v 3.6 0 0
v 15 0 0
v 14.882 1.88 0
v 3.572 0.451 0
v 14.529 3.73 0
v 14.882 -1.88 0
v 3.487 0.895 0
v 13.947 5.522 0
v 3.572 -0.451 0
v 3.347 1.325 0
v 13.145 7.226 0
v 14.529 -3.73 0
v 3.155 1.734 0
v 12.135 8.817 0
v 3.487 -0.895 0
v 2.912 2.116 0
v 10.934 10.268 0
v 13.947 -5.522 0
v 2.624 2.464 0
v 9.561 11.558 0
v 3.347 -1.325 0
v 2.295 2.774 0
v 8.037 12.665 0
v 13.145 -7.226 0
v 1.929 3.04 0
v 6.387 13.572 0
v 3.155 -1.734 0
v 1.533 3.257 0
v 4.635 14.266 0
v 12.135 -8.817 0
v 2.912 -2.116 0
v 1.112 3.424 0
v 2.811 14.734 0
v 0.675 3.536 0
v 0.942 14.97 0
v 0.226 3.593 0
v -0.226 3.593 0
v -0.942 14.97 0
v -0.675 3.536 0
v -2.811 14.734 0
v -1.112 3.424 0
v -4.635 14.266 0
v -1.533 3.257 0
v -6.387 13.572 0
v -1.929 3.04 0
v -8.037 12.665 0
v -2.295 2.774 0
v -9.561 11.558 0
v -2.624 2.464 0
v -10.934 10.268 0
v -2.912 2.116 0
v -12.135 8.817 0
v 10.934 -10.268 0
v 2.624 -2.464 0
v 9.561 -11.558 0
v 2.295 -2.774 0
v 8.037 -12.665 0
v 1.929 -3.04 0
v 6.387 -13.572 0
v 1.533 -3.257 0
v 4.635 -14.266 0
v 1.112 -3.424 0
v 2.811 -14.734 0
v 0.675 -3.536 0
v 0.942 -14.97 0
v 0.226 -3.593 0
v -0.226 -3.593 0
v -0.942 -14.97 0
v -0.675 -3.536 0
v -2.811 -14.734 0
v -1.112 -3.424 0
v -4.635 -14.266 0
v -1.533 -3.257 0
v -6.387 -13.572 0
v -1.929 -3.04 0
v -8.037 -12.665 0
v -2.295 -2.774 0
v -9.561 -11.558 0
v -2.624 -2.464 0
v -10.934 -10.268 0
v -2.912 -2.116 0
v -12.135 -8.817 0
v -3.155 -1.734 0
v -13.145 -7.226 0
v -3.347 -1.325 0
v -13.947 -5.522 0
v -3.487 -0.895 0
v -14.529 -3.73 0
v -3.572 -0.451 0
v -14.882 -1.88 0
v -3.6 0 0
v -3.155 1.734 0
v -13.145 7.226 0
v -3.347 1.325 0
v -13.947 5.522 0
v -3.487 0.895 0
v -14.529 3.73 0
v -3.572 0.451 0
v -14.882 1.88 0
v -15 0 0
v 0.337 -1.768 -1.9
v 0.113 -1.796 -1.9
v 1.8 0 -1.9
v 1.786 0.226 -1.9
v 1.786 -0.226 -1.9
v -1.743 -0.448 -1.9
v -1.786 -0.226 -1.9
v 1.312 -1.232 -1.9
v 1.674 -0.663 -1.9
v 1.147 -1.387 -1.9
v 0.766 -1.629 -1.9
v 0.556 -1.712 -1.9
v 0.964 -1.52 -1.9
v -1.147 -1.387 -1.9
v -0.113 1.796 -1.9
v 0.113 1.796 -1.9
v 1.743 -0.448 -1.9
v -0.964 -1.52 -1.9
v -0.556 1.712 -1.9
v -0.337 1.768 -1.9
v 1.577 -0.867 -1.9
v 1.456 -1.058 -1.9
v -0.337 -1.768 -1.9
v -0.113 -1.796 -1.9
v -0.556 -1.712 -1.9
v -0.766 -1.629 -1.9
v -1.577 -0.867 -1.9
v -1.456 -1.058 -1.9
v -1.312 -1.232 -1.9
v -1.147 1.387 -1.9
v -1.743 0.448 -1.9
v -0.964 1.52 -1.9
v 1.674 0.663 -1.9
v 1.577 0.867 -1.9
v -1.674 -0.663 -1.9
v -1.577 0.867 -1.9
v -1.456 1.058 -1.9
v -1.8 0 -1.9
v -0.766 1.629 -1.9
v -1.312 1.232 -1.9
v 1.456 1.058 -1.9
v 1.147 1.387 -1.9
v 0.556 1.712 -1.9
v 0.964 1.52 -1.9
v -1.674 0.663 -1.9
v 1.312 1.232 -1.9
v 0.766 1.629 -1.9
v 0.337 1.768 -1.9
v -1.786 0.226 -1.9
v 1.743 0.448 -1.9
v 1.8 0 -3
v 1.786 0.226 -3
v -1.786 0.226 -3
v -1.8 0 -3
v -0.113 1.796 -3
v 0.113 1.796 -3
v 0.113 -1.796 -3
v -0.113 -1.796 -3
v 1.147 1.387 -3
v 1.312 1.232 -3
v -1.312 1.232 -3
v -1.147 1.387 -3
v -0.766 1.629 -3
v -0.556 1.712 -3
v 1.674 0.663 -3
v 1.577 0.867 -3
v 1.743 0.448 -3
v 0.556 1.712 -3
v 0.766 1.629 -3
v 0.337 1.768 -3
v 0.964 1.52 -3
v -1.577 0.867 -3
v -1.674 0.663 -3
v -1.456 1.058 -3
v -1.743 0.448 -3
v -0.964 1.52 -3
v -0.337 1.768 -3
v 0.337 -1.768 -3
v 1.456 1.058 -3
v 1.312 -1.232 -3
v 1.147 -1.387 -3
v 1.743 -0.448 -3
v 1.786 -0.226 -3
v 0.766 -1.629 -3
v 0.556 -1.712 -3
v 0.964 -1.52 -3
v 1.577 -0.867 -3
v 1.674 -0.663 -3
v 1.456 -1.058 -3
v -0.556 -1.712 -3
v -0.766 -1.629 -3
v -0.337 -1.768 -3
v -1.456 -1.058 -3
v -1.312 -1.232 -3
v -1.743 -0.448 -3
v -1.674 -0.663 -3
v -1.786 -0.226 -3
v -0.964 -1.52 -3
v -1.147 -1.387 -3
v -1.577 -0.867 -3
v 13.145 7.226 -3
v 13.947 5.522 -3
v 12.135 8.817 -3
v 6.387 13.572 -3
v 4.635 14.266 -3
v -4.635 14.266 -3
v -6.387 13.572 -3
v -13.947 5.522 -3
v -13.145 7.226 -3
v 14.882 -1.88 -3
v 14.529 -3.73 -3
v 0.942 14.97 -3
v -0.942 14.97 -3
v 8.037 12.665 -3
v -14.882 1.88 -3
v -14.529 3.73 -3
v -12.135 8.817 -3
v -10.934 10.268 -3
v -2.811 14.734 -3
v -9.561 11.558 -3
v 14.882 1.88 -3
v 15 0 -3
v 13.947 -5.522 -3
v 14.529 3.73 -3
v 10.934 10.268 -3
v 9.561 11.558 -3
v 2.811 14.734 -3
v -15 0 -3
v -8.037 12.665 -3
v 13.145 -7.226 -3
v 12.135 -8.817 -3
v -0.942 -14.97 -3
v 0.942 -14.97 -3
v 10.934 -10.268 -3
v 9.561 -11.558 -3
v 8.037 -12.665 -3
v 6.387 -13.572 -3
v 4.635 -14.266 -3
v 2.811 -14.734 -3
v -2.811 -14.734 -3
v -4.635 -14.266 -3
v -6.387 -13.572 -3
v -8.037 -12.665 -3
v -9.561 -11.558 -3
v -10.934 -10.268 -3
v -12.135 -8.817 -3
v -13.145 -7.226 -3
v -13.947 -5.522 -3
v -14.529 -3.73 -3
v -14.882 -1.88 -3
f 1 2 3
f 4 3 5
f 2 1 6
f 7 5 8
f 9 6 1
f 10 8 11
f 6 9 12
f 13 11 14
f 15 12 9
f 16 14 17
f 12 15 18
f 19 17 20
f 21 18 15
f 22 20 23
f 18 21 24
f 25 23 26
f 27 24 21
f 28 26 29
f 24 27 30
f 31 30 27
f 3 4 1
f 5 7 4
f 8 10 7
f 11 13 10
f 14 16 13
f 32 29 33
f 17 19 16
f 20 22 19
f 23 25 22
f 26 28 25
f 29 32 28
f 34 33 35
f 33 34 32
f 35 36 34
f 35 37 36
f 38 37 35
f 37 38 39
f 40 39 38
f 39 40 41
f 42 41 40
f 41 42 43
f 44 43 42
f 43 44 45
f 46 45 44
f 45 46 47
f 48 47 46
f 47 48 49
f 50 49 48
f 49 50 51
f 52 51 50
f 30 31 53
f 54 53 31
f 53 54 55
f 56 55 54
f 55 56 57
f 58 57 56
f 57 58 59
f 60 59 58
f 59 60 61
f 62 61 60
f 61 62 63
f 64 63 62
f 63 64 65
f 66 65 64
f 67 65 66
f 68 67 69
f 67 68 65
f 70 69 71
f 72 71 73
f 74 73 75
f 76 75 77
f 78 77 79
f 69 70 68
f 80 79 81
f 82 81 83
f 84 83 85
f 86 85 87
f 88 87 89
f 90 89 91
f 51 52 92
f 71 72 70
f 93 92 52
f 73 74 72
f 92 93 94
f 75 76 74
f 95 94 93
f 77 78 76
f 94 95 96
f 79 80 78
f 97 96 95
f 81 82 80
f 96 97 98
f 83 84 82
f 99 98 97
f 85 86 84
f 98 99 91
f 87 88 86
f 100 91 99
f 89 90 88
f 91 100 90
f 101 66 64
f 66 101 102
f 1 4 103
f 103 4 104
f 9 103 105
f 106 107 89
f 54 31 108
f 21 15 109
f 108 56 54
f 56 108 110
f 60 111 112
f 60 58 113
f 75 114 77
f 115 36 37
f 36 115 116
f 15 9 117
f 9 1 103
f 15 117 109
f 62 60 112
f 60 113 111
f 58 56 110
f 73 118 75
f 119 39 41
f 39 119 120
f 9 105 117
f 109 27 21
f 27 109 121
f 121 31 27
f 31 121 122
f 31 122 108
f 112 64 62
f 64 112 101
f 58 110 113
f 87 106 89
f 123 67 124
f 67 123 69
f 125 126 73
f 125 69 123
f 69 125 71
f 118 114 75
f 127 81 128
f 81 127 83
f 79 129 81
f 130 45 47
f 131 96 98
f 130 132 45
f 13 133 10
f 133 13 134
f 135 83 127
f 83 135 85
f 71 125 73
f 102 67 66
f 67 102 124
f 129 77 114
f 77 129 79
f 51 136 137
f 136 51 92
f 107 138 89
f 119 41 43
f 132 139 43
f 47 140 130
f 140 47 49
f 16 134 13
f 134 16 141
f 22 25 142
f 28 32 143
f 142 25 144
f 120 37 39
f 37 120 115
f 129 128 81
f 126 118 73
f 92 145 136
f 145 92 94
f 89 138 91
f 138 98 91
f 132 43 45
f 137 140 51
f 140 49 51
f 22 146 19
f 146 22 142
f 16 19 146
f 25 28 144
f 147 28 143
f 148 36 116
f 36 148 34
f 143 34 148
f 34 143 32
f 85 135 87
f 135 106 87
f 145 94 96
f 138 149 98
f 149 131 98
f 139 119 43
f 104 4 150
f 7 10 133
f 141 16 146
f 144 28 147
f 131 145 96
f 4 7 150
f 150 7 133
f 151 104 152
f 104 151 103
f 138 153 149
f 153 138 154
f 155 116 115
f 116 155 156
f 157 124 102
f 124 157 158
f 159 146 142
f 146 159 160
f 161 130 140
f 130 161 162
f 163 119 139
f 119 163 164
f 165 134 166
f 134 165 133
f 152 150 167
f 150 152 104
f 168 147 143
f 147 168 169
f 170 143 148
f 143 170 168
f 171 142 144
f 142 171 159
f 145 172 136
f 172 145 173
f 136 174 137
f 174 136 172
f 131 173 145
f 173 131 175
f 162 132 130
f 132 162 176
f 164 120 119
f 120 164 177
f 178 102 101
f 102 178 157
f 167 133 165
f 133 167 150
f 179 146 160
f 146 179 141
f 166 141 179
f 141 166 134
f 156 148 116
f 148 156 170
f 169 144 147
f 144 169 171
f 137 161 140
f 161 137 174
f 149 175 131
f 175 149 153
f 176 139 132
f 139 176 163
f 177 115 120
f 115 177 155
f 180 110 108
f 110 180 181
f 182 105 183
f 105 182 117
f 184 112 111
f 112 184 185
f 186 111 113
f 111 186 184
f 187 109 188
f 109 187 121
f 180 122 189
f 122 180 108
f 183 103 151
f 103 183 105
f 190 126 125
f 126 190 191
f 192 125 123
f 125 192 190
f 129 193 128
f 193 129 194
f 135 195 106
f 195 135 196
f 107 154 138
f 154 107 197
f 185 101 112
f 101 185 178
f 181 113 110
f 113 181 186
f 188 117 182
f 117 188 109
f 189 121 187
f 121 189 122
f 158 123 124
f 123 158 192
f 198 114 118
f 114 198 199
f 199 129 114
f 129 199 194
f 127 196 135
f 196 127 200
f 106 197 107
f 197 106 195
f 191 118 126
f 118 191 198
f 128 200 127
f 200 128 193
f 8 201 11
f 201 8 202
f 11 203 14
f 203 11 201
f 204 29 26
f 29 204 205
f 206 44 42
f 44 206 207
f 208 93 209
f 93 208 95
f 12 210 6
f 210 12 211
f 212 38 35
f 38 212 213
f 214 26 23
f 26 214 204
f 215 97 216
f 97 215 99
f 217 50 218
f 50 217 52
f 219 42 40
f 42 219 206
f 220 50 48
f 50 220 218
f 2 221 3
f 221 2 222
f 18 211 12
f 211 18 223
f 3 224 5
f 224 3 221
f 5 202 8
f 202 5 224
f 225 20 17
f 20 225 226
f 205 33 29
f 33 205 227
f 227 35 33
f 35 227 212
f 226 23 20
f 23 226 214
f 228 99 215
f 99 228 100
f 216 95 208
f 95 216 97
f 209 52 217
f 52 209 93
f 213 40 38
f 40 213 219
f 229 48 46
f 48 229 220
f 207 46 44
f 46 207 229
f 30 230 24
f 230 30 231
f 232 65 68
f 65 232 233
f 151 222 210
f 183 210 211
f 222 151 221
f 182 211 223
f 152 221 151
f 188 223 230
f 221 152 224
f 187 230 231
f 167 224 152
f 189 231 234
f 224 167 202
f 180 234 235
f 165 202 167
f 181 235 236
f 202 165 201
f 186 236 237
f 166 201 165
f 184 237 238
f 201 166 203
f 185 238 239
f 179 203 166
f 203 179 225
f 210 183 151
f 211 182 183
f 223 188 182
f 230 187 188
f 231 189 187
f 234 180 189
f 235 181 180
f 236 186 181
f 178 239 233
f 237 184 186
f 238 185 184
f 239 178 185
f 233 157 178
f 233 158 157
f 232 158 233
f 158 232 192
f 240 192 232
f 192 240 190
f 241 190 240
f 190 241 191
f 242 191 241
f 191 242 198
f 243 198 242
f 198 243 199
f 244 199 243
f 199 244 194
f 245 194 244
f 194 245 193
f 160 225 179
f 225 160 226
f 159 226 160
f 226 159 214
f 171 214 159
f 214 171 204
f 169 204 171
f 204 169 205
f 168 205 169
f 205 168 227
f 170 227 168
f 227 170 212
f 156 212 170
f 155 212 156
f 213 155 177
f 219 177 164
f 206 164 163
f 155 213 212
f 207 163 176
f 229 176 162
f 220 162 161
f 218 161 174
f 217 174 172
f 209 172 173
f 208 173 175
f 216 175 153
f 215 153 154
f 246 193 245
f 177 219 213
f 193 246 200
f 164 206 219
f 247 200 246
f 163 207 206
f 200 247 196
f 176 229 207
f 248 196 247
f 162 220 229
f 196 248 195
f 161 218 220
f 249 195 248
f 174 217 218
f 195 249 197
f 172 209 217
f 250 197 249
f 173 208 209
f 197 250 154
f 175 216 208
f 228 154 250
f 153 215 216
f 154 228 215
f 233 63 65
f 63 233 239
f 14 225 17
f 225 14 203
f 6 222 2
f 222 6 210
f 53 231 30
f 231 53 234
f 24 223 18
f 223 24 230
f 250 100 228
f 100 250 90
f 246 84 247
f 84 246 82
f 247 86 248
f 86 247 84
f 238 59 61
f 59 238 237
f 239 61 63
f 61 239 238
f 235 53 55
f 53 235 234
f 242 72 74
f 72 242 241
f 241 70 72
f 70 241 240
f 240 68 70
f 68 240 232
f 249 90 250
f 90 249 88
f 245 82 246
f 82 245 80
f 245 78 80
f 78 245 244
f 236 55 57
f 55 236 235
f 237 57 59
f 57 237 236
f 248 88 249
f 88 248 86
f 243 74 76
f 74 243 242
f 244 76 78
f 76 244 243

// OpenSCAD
$fn = 50;


difference() {
	union() {
		translate(v = [0, 0, -3.0000000000]) {
			cylinder(h = 3, r = 15.0000000000);
		}
	}
	union() {
		translate(v = [0, 0, 0]) {
			rotate(a = [0, 0, 0]) {
				difference() {
					union() {
						translate(v = [0, 0, -6.0000000000]) {
							cylinder(h = 6, r = 1.5000000000);
						}
						translate(v = [0, 0, -1.9000000000]) {
							cylinder(h = 1.9000000000, r1 = 1.8000000000, r2 = 3.6000000000);
						}
						translate(v = [0, 0, -6.0000000000]) {
							cylinder(h = 6, r = 1.8000000000);
						}
						translate(v = [0, 0, -6.0000000000]) {
							cylinder(h = 6, r = 1.5000000000);
						}
					}
					union();
				}
			}
		}
	}
}
